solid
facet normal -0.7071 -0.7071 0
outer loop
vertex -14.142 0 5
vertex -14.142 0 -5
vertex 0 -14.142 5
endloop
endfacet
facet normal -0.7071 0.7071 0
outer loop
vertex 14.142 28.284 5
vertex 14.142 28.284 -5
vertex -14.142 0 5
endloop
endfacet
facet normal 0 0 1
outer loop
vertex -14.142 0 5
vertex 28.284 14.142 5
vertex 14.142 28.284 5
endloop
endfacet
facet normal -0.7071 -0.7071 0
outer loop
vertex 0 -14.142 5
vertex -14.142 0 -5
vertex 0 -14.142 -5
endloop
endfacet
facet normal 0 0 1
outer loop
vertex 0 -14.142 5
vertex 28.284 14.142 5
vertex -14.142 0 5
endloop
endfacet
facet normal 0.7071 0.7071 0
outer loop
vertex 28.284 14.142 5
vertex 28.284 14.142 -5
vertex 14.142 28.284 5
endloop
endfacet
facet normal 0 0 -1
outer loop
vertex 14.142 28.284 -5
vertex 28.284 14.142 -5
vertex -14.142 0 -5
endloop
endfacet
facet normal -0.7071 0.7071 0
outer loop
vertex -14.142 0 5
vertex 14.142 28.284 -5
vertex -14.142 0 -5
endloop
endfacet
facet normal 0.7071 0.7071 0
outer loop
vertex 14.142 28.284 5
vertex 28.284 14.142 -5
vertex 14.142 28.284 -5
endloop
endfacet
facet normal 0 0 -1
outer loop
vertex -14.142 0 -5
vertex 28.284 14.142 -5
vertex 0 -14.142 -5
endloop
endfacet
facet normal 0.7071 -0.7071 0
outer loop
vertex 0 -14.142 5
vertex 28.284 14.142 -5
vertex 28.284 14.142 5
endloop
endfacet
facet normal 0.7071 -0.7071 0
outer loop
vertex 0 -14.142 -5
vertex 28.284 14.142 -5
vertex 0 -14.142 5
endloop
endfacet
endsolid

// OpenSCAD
module pyramid(height, width, depth, angle) {
  rotate([0,0,angle])
    translate([0,0,0])
    hull() {
      for (i = [0:width]) {
        translate([i * (width / width), 0, 0])
          cube([width, depth, height], center = true);
      }
    }
}

pyramid(height = 10, width = 20, depth = 20, angle = 45);
